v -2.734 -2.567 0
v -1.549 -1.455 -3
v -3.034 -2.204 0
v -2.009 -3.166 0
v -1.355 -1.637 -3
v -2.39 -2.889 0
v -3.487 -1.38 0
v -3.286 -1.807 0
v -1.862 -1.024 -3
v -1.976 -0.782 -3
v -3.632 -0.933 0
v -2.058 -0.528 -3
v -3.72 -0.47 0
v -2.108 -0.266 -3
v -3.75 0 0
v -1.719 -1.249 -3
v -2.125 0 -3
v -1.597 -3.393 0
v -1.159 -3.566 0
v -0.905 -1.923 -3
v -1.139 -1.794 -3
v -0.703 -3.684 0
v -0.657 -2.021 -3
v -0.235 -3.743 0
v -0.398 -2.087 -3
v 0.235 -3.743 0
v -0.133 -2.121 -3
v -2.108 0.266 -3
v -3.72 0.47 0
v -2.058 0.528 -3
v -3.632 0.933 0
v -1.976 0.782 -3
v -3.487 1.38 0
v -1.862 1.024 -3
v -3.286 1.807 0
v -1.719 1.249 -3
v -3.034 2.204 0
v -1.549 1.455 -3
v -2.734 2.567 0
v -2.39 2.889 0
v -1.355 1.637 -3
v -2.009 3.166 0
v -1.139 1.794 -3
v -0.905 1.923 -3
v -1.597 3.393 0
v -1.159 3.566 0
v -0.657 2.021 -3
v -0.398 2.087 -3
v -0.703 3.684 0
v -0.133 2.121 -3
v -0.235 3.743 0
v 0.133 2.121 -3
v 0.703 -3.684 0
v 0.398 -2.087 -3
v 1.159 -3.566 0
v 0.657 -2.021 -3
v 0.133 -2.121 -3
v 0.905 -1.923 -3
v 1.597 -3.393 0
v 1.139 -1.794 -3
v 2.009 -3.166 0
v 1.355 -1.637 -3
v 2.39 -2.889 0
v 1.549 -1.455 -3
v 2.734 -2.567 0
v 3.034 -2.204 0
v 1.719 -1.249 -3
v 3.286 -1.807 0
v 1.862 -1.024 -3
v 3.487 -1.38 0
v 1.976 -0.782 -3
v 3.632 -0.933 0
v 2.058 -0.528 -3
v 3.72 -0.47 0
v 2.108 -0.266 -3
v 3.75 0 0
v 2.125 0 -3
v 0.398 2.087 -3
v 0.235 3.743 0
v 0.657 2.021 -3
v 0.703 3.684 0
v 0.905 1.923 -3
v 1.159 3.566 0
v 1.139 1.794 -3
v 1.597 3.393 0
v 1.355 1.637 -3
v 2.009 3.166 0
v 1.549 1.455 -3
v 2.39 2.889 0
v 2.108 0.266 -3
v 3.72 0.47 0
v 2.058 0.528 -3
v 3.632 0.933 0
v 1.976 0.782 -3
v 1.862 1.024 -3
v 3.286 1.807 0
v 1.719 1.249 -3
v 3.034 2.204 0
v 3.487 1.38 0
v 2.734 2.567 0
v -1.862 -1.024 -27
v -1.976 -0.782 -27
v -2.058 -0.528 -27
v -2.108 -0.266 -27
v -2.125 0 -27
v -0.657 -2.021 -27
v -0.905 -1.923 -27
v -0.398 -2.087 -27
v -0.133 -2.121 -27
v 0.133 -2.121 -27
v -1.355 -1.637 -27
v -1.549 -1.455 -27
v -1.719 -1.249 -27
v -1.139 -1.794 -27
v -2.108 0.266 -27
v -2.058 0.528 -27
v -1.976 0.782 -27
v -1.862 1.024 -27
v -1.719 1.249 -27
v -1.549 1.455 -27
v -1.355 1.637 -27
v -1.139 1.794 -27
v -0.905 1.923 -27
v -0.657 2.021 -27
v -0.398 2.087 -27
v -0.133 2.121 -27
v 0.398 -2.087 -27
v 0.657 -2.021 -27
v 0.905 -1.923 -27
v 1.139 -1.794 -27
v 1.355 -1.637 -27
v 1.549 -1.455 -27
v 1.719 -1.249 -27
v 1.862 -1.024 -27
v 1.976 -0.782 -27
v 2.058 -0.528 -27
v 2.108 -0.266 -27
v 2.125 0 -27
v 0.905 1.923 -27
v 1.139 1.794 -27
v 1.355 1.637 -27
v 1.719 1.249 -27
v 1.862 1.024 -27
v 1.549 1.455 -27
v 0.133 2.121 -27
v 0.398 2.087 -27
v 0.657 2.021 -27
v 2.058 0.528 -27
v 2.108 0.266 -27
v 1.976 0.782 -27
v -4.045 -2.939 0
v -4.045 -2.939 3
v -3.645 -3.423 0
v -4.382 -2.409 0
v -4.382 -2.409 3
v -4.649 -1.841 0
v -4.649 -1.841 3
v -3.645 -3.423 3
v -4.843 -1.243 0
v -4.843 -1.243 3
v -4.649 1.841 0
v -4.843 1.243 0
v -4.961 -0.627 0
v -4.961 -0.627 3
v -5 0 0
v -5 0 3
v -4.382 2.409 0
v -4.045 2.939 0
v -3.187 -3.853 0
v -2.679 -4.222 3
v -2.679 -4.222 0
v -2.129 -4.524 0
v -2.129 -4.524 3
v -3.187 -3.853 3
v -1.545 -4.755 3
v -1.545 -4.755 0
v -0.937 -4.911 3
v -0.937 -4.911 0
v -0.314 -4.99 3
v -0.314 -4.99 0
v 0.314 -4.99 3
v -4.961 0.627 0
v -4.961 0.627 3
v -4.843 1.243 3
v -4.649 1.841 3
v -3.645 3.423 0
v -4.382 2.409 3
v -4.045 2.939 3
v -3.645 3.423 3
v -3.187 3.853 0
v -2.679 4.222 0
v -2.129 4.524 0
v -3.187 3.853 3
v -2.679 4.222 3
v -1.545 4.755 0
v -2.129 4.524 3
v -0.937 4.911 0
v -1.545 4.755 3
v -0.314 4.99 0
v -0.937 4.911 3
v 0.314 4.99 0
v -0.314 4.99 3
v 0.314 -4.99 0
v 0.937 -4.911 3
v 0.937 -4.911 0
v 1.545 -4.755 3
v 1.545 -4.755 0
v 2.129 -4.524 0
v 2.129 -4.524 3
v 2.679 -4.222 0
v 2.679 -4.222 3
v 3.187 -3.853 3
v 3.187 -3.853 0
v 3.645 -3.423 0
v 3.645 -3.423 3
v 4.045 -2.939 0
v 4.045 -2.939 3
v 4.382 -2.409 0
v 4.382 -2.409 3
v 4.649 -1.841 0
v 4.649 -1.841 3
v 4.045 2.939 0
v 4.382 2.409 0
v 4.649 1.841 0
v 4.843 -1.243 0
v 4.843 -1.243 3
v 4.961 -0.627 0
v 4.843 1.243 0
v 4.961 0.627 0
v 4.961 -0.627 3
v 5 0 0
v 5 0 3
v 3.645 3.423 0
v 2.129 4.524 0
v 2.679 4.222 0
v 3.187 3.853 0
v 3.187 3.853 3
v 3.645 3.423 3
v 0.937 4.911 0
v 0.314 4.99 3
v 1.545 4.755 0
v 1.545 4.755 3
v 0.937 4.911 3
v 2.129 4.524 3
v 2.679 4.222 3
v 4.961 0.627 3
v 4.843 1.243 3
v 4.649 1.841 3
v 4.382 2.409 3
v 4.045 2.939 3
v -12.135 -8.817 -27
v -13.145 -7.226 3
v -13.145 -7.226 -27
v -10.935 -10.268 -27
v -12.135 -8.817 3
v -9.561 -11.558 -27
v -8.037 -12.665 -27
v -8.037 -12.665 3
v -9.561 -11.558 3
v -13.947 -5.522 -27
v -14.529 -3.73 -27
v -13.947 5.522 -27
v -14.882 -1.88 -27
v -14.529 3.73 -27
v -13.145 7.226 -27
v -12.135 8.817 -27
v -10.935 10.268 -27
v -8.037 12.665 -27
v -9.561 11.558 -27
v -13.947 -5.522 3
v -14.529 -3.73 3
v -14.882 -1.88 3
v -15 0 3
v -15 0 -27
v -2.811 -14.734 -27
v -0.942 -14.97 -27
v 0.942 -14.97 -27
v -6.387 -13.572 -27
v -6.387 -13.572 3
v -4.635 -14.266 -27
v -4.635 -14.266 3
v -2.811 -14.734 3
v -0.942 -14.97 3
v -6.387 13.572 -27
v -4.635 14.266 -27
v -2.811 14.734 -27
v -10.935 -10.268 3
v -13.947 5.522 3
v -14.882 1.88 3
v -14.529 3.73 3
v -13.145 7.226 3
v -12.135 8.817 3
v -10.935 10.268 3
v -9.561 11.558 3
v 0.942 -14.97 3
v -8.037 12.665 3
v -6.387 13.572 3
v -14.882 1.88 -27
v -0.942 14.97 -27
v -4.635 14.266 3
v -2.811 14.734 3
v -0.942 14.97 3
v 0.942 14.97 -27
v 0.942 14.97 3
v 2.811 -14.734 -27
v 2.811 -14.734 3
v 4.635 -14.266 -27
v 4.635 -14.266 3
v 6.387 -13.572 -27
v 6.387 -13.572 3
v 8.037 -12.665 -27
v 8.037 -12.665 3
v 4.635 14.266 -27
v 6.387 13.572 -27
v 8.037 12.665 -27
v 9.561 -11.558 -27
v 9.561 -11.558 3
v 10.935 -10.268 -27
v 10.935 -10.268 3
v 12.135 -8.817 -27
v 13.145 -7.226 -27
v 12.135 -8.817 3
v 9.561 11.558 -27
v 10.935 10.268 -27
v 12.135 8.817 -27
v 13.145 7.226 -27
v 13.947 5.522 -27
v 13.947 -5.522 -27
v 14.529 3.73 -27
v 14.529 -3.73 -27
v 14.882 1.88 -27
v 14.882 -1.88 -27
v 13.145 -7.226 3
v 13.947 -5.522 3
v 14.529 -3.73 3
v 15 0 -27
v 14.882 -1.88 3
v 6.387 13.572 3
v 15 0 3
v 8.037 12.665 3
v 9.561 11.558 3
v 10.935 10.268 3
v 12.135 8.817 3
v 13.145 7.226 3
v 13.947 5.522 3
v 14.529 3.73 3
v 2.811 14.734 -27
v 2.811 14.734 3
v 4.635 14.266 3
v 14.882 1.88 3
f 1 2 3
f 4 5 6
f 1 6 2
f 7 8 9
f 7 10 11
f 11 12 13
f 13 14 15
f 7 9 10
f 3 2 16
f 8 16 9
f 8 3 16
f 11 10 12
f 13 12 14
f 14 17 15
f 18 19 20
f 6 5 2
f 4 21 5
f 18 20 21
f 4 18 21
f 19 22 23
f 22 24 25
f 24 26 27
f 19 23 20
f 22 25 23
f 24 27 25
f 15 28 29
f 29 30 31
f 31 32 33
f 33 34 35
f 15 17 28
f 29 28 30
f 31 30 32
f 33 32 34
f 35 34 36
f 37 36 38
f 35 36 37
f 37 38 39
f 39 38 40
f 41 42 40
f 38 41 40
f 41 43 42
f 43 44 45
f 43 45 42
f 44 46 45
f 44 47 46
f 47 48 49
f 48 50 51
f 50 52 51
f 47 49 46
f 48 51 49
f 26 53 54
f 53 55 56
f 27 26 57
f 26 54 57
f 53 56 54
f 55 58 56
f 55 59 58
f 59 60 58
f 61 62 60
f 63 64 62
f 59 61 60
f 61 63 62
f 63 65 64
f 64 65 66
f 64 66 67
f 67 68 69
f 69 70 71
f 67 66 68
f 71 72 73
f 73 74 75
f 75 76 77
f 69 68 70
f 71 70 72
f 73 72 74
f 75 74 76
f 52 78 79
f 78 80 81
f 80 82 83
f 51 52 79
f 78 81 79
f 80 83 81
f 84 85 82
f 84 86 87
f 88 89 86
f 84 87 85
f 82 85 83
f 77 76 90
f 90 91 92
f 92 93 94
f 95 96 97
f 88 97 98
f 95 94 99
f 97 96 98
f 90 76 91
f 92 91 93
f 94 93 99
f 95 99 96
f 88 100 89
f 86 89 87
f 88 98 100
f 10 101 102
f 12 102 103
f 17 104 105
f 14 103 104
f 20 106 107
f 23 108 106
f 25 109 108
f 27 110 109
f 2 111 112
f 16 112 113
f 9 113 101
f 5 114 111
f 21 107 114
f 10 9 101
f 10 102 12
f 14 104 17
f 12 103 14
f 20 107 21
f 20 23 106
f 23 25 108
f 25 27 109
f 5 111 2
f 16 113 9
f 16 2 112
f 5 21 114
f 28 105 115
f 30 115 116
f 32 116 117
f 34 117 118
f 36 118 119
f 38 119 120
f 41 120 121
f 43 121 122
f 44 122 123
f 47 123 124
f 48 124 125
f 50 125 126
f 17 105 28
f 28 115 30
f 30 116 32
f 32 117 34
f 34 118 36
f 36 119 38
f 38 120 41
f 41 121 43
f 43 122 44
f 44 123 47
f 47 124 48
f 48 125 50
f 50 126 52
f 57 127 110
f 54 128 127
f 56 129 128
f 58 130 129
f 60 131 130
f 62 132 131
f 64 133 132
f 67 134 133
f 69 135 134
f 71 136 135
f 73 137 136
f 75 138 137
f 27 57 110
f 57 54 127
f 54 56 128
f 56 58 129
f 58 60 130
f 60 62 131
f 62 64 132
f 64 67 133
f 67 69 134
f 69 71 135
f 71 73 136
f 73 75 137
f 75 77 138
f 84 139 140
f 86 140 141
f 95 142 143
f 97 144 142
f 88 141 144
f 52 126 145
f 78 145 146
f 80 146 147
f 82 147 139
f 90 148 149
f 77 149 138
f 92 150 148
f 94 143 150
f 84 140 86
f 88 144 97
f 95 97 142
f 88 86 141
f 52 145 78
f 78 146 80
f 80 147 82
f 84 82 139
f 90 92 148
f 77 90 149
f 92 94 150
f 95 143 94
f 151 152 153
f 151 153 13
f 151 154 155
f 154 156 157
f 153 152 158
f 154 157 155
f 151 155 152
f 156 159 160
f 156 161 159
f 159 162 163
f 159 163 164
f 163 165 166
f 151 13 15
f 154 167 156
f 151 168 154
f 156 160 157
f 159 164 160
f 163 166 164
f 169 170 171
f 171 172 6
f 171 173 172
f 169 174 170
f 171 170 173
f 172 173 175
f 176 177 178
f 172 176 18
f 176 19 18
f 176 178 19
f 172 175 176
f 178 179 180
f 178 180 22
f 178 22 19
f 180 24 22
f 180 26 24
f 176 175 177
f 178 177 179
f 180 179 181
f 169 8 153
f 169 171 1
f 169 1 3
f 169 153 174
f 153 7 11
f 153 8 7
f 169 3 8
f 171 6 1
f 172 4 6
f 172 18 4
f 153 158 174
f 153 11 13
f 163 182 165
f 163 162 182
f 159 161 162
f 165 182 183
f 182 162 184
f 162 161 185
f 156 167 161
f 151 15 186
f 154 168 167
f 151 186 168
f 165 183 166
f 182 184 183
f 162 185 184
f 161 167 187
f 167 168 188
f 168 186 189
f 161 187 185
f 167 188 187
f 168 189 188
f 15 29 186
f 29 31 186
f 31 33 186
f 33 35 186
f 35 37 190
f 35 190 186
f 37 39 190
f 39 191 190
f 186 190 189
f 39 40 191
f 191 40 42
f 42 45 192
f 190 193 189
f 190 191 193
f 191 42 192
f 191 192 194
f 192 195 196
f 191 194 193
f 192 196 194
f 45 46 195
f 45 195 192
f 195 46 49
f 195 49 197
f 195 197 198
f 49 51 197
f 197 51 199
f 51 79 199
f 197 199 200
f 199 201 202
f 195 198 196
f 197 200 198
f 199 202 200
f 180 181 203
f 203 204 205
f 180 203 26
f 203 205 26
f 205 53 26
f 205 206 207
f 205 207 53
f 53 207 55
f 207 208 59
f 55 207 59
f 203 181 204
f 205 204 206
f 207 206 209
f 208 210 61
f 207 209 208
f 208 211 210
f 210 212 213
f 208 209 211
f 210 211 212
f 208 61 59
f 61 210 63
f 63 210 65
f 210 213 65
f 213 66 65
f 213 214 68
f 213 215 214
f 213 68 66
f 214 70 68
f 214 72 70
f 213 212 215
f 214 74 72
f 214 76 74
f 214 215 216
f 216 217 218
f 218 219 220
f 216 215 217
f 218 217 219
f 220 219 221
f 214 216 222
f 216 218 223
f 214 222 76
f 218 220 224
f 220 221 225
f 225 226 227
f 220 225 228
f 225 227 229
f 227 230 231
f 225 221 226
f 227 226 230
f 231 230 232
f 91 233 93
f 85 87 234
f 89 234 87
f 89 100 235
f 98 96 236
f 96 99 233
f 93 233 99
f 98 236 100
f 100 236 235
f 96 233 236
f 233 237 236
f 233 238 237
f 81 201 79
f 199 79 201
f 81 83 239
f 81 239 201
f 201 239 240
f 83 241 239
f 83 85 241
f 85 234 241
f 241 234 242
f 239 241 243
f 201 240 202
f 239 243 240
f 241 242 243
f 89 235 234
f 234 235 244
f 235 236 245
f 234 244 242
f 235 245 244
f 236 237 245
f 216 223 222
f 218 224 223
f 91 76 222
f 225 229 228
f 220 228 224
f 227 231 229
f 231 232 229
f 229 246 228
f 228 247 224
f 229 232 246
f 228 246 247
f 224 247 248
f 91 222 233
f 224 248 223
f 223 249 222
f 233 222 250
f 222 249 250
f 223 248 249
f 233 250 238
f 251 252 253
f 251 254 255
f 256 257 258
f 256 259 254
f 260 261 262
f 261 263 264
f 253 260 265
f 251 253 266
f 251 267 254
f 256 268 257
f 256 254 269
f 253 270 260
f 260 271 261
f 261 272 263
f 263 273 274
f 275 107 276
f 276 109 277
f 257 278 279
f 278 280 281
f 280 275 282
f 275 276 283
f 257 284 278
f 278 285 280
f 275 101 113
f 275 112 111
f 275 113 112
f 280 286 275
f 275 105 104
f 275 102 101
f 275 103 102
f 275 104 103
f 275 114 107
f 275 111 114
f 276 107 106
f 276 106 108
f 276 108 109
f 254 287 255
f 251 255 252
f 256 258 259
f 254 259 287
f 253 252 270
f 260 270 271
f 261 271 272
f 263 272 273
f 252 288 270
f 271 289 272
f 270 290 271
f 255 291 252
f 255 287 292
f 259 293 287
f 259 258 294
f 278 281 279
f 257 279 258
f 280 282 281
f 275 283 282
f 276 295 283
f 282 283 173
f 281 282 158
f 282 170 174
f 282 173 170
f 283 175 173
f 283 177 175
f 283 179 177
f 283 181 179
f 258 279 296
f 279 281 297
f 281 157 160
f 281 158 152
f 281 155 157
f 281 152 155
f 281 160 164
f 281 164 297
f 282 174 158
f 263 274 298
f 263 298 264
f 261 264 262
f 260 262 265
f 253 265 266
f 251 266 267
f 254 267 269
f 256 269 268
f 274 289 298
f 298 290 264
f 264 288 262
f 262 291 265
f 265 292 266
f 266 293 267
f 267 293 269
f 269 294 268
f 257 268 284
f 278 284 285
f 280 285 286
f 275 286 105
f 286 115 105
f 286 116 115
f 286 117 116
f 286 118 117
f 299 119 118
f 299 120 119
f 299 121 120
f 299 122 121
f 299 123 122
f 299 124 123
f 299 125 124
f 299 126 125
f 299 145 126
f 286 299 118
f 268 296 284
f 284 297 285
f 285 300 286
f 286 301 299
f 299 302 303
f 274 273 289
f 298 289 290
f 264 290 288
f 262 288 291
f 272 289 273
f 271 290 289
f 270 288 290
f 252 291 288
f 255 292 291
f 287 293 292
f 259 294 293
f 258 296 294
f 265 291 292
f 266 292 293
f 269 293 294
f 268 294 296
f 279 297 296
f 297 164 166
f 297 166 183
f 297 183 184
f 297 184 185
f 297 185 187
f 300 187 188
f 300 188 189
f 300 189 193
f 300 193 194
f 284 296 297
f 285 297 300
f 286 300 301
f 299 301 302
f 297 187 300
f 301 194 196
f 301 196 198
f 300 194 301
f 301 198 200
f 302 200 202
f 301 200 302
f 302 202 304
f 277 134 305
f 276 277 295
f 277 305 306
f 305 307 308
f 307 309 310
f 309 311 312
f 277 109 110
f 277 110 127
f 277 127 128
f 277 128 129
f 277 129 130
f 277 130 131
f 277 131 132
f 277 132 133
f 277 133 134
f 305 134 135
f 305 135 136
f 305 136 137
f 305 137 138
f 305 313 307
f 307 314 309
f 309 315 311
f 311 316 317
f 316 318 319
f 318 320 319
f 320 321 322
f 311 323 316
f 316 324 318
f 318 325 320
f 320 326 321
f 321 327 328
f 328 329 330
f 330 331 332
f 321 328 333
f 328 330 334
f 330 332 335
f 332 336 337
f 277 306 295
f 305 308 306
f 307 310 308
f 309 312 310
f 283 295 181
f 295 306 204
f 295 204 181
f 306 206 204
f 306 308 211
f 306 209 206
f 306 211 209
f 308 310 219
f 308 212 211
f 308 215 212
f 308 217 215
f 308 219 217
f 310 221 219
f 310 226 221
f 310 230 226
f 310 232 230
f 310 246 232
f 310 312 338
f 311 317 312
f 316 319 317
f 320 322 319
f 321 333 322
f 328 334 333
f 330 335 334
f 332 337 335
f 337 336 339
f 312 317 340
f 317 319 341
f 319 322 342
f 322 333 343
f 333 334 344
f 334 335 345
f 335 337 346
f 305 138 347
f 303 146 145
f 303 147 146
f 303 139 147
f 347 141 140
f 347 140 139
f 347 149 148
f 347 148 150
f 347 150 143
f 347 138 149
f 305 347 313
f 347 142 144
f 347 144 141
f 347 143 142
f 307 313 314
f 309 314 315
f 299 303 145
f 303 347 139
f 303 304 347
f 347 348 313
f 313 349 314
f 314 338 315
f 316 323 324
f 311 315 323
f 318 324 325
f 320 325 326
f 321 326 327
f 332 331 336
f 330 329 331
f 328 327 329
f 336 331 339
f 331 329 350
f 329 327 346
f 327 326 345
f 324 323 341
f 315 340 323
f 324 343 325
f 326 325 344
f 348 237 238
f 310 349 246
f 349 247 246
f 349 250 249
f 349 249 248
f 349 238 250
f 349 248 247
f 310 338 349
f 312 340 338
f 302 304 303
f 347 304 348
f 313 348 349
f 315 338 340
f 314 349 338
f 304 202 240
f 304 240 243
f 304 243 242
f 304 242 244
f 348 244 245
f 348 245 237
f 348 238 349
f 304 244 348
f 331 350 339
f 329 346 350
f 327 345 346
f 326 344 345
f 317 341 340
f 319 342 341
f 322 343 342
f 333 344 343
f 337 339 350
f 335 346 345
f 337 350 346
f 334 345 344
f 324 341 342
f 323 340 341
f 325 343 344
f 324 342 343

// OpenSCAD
$fn = 50;

difference() {
	union() {
		translate(v = [0, 0, -27.0]) {
			cylinder(h = 30, r = 15.0);
		}
	}
	union() {
		translate(v = [0, 0, 0]) {
			rotate(a = [0, 0, 0]) {
				difference() {
					union() {
						translate(v = [0, 0, -30.0]) {
							cylinder(h = 30, r = 2.0);
						}
						translate(v = [0, 0, -3]) {
							cylinder(h = 3, r1 = 2.125, r2 = 3.75);
						}
						translate(v = [0, 0, -30.0]) {
							cylinder(h = 30, r = 2.125);
						}
						translate(v = [0, 0, -30.0]) {
							cylinder(h = 30, r = 2.0);
						}
					}
					union();
				}
			}
		}
		#cylinder(h = 3, r = 5.0);
	}
}
